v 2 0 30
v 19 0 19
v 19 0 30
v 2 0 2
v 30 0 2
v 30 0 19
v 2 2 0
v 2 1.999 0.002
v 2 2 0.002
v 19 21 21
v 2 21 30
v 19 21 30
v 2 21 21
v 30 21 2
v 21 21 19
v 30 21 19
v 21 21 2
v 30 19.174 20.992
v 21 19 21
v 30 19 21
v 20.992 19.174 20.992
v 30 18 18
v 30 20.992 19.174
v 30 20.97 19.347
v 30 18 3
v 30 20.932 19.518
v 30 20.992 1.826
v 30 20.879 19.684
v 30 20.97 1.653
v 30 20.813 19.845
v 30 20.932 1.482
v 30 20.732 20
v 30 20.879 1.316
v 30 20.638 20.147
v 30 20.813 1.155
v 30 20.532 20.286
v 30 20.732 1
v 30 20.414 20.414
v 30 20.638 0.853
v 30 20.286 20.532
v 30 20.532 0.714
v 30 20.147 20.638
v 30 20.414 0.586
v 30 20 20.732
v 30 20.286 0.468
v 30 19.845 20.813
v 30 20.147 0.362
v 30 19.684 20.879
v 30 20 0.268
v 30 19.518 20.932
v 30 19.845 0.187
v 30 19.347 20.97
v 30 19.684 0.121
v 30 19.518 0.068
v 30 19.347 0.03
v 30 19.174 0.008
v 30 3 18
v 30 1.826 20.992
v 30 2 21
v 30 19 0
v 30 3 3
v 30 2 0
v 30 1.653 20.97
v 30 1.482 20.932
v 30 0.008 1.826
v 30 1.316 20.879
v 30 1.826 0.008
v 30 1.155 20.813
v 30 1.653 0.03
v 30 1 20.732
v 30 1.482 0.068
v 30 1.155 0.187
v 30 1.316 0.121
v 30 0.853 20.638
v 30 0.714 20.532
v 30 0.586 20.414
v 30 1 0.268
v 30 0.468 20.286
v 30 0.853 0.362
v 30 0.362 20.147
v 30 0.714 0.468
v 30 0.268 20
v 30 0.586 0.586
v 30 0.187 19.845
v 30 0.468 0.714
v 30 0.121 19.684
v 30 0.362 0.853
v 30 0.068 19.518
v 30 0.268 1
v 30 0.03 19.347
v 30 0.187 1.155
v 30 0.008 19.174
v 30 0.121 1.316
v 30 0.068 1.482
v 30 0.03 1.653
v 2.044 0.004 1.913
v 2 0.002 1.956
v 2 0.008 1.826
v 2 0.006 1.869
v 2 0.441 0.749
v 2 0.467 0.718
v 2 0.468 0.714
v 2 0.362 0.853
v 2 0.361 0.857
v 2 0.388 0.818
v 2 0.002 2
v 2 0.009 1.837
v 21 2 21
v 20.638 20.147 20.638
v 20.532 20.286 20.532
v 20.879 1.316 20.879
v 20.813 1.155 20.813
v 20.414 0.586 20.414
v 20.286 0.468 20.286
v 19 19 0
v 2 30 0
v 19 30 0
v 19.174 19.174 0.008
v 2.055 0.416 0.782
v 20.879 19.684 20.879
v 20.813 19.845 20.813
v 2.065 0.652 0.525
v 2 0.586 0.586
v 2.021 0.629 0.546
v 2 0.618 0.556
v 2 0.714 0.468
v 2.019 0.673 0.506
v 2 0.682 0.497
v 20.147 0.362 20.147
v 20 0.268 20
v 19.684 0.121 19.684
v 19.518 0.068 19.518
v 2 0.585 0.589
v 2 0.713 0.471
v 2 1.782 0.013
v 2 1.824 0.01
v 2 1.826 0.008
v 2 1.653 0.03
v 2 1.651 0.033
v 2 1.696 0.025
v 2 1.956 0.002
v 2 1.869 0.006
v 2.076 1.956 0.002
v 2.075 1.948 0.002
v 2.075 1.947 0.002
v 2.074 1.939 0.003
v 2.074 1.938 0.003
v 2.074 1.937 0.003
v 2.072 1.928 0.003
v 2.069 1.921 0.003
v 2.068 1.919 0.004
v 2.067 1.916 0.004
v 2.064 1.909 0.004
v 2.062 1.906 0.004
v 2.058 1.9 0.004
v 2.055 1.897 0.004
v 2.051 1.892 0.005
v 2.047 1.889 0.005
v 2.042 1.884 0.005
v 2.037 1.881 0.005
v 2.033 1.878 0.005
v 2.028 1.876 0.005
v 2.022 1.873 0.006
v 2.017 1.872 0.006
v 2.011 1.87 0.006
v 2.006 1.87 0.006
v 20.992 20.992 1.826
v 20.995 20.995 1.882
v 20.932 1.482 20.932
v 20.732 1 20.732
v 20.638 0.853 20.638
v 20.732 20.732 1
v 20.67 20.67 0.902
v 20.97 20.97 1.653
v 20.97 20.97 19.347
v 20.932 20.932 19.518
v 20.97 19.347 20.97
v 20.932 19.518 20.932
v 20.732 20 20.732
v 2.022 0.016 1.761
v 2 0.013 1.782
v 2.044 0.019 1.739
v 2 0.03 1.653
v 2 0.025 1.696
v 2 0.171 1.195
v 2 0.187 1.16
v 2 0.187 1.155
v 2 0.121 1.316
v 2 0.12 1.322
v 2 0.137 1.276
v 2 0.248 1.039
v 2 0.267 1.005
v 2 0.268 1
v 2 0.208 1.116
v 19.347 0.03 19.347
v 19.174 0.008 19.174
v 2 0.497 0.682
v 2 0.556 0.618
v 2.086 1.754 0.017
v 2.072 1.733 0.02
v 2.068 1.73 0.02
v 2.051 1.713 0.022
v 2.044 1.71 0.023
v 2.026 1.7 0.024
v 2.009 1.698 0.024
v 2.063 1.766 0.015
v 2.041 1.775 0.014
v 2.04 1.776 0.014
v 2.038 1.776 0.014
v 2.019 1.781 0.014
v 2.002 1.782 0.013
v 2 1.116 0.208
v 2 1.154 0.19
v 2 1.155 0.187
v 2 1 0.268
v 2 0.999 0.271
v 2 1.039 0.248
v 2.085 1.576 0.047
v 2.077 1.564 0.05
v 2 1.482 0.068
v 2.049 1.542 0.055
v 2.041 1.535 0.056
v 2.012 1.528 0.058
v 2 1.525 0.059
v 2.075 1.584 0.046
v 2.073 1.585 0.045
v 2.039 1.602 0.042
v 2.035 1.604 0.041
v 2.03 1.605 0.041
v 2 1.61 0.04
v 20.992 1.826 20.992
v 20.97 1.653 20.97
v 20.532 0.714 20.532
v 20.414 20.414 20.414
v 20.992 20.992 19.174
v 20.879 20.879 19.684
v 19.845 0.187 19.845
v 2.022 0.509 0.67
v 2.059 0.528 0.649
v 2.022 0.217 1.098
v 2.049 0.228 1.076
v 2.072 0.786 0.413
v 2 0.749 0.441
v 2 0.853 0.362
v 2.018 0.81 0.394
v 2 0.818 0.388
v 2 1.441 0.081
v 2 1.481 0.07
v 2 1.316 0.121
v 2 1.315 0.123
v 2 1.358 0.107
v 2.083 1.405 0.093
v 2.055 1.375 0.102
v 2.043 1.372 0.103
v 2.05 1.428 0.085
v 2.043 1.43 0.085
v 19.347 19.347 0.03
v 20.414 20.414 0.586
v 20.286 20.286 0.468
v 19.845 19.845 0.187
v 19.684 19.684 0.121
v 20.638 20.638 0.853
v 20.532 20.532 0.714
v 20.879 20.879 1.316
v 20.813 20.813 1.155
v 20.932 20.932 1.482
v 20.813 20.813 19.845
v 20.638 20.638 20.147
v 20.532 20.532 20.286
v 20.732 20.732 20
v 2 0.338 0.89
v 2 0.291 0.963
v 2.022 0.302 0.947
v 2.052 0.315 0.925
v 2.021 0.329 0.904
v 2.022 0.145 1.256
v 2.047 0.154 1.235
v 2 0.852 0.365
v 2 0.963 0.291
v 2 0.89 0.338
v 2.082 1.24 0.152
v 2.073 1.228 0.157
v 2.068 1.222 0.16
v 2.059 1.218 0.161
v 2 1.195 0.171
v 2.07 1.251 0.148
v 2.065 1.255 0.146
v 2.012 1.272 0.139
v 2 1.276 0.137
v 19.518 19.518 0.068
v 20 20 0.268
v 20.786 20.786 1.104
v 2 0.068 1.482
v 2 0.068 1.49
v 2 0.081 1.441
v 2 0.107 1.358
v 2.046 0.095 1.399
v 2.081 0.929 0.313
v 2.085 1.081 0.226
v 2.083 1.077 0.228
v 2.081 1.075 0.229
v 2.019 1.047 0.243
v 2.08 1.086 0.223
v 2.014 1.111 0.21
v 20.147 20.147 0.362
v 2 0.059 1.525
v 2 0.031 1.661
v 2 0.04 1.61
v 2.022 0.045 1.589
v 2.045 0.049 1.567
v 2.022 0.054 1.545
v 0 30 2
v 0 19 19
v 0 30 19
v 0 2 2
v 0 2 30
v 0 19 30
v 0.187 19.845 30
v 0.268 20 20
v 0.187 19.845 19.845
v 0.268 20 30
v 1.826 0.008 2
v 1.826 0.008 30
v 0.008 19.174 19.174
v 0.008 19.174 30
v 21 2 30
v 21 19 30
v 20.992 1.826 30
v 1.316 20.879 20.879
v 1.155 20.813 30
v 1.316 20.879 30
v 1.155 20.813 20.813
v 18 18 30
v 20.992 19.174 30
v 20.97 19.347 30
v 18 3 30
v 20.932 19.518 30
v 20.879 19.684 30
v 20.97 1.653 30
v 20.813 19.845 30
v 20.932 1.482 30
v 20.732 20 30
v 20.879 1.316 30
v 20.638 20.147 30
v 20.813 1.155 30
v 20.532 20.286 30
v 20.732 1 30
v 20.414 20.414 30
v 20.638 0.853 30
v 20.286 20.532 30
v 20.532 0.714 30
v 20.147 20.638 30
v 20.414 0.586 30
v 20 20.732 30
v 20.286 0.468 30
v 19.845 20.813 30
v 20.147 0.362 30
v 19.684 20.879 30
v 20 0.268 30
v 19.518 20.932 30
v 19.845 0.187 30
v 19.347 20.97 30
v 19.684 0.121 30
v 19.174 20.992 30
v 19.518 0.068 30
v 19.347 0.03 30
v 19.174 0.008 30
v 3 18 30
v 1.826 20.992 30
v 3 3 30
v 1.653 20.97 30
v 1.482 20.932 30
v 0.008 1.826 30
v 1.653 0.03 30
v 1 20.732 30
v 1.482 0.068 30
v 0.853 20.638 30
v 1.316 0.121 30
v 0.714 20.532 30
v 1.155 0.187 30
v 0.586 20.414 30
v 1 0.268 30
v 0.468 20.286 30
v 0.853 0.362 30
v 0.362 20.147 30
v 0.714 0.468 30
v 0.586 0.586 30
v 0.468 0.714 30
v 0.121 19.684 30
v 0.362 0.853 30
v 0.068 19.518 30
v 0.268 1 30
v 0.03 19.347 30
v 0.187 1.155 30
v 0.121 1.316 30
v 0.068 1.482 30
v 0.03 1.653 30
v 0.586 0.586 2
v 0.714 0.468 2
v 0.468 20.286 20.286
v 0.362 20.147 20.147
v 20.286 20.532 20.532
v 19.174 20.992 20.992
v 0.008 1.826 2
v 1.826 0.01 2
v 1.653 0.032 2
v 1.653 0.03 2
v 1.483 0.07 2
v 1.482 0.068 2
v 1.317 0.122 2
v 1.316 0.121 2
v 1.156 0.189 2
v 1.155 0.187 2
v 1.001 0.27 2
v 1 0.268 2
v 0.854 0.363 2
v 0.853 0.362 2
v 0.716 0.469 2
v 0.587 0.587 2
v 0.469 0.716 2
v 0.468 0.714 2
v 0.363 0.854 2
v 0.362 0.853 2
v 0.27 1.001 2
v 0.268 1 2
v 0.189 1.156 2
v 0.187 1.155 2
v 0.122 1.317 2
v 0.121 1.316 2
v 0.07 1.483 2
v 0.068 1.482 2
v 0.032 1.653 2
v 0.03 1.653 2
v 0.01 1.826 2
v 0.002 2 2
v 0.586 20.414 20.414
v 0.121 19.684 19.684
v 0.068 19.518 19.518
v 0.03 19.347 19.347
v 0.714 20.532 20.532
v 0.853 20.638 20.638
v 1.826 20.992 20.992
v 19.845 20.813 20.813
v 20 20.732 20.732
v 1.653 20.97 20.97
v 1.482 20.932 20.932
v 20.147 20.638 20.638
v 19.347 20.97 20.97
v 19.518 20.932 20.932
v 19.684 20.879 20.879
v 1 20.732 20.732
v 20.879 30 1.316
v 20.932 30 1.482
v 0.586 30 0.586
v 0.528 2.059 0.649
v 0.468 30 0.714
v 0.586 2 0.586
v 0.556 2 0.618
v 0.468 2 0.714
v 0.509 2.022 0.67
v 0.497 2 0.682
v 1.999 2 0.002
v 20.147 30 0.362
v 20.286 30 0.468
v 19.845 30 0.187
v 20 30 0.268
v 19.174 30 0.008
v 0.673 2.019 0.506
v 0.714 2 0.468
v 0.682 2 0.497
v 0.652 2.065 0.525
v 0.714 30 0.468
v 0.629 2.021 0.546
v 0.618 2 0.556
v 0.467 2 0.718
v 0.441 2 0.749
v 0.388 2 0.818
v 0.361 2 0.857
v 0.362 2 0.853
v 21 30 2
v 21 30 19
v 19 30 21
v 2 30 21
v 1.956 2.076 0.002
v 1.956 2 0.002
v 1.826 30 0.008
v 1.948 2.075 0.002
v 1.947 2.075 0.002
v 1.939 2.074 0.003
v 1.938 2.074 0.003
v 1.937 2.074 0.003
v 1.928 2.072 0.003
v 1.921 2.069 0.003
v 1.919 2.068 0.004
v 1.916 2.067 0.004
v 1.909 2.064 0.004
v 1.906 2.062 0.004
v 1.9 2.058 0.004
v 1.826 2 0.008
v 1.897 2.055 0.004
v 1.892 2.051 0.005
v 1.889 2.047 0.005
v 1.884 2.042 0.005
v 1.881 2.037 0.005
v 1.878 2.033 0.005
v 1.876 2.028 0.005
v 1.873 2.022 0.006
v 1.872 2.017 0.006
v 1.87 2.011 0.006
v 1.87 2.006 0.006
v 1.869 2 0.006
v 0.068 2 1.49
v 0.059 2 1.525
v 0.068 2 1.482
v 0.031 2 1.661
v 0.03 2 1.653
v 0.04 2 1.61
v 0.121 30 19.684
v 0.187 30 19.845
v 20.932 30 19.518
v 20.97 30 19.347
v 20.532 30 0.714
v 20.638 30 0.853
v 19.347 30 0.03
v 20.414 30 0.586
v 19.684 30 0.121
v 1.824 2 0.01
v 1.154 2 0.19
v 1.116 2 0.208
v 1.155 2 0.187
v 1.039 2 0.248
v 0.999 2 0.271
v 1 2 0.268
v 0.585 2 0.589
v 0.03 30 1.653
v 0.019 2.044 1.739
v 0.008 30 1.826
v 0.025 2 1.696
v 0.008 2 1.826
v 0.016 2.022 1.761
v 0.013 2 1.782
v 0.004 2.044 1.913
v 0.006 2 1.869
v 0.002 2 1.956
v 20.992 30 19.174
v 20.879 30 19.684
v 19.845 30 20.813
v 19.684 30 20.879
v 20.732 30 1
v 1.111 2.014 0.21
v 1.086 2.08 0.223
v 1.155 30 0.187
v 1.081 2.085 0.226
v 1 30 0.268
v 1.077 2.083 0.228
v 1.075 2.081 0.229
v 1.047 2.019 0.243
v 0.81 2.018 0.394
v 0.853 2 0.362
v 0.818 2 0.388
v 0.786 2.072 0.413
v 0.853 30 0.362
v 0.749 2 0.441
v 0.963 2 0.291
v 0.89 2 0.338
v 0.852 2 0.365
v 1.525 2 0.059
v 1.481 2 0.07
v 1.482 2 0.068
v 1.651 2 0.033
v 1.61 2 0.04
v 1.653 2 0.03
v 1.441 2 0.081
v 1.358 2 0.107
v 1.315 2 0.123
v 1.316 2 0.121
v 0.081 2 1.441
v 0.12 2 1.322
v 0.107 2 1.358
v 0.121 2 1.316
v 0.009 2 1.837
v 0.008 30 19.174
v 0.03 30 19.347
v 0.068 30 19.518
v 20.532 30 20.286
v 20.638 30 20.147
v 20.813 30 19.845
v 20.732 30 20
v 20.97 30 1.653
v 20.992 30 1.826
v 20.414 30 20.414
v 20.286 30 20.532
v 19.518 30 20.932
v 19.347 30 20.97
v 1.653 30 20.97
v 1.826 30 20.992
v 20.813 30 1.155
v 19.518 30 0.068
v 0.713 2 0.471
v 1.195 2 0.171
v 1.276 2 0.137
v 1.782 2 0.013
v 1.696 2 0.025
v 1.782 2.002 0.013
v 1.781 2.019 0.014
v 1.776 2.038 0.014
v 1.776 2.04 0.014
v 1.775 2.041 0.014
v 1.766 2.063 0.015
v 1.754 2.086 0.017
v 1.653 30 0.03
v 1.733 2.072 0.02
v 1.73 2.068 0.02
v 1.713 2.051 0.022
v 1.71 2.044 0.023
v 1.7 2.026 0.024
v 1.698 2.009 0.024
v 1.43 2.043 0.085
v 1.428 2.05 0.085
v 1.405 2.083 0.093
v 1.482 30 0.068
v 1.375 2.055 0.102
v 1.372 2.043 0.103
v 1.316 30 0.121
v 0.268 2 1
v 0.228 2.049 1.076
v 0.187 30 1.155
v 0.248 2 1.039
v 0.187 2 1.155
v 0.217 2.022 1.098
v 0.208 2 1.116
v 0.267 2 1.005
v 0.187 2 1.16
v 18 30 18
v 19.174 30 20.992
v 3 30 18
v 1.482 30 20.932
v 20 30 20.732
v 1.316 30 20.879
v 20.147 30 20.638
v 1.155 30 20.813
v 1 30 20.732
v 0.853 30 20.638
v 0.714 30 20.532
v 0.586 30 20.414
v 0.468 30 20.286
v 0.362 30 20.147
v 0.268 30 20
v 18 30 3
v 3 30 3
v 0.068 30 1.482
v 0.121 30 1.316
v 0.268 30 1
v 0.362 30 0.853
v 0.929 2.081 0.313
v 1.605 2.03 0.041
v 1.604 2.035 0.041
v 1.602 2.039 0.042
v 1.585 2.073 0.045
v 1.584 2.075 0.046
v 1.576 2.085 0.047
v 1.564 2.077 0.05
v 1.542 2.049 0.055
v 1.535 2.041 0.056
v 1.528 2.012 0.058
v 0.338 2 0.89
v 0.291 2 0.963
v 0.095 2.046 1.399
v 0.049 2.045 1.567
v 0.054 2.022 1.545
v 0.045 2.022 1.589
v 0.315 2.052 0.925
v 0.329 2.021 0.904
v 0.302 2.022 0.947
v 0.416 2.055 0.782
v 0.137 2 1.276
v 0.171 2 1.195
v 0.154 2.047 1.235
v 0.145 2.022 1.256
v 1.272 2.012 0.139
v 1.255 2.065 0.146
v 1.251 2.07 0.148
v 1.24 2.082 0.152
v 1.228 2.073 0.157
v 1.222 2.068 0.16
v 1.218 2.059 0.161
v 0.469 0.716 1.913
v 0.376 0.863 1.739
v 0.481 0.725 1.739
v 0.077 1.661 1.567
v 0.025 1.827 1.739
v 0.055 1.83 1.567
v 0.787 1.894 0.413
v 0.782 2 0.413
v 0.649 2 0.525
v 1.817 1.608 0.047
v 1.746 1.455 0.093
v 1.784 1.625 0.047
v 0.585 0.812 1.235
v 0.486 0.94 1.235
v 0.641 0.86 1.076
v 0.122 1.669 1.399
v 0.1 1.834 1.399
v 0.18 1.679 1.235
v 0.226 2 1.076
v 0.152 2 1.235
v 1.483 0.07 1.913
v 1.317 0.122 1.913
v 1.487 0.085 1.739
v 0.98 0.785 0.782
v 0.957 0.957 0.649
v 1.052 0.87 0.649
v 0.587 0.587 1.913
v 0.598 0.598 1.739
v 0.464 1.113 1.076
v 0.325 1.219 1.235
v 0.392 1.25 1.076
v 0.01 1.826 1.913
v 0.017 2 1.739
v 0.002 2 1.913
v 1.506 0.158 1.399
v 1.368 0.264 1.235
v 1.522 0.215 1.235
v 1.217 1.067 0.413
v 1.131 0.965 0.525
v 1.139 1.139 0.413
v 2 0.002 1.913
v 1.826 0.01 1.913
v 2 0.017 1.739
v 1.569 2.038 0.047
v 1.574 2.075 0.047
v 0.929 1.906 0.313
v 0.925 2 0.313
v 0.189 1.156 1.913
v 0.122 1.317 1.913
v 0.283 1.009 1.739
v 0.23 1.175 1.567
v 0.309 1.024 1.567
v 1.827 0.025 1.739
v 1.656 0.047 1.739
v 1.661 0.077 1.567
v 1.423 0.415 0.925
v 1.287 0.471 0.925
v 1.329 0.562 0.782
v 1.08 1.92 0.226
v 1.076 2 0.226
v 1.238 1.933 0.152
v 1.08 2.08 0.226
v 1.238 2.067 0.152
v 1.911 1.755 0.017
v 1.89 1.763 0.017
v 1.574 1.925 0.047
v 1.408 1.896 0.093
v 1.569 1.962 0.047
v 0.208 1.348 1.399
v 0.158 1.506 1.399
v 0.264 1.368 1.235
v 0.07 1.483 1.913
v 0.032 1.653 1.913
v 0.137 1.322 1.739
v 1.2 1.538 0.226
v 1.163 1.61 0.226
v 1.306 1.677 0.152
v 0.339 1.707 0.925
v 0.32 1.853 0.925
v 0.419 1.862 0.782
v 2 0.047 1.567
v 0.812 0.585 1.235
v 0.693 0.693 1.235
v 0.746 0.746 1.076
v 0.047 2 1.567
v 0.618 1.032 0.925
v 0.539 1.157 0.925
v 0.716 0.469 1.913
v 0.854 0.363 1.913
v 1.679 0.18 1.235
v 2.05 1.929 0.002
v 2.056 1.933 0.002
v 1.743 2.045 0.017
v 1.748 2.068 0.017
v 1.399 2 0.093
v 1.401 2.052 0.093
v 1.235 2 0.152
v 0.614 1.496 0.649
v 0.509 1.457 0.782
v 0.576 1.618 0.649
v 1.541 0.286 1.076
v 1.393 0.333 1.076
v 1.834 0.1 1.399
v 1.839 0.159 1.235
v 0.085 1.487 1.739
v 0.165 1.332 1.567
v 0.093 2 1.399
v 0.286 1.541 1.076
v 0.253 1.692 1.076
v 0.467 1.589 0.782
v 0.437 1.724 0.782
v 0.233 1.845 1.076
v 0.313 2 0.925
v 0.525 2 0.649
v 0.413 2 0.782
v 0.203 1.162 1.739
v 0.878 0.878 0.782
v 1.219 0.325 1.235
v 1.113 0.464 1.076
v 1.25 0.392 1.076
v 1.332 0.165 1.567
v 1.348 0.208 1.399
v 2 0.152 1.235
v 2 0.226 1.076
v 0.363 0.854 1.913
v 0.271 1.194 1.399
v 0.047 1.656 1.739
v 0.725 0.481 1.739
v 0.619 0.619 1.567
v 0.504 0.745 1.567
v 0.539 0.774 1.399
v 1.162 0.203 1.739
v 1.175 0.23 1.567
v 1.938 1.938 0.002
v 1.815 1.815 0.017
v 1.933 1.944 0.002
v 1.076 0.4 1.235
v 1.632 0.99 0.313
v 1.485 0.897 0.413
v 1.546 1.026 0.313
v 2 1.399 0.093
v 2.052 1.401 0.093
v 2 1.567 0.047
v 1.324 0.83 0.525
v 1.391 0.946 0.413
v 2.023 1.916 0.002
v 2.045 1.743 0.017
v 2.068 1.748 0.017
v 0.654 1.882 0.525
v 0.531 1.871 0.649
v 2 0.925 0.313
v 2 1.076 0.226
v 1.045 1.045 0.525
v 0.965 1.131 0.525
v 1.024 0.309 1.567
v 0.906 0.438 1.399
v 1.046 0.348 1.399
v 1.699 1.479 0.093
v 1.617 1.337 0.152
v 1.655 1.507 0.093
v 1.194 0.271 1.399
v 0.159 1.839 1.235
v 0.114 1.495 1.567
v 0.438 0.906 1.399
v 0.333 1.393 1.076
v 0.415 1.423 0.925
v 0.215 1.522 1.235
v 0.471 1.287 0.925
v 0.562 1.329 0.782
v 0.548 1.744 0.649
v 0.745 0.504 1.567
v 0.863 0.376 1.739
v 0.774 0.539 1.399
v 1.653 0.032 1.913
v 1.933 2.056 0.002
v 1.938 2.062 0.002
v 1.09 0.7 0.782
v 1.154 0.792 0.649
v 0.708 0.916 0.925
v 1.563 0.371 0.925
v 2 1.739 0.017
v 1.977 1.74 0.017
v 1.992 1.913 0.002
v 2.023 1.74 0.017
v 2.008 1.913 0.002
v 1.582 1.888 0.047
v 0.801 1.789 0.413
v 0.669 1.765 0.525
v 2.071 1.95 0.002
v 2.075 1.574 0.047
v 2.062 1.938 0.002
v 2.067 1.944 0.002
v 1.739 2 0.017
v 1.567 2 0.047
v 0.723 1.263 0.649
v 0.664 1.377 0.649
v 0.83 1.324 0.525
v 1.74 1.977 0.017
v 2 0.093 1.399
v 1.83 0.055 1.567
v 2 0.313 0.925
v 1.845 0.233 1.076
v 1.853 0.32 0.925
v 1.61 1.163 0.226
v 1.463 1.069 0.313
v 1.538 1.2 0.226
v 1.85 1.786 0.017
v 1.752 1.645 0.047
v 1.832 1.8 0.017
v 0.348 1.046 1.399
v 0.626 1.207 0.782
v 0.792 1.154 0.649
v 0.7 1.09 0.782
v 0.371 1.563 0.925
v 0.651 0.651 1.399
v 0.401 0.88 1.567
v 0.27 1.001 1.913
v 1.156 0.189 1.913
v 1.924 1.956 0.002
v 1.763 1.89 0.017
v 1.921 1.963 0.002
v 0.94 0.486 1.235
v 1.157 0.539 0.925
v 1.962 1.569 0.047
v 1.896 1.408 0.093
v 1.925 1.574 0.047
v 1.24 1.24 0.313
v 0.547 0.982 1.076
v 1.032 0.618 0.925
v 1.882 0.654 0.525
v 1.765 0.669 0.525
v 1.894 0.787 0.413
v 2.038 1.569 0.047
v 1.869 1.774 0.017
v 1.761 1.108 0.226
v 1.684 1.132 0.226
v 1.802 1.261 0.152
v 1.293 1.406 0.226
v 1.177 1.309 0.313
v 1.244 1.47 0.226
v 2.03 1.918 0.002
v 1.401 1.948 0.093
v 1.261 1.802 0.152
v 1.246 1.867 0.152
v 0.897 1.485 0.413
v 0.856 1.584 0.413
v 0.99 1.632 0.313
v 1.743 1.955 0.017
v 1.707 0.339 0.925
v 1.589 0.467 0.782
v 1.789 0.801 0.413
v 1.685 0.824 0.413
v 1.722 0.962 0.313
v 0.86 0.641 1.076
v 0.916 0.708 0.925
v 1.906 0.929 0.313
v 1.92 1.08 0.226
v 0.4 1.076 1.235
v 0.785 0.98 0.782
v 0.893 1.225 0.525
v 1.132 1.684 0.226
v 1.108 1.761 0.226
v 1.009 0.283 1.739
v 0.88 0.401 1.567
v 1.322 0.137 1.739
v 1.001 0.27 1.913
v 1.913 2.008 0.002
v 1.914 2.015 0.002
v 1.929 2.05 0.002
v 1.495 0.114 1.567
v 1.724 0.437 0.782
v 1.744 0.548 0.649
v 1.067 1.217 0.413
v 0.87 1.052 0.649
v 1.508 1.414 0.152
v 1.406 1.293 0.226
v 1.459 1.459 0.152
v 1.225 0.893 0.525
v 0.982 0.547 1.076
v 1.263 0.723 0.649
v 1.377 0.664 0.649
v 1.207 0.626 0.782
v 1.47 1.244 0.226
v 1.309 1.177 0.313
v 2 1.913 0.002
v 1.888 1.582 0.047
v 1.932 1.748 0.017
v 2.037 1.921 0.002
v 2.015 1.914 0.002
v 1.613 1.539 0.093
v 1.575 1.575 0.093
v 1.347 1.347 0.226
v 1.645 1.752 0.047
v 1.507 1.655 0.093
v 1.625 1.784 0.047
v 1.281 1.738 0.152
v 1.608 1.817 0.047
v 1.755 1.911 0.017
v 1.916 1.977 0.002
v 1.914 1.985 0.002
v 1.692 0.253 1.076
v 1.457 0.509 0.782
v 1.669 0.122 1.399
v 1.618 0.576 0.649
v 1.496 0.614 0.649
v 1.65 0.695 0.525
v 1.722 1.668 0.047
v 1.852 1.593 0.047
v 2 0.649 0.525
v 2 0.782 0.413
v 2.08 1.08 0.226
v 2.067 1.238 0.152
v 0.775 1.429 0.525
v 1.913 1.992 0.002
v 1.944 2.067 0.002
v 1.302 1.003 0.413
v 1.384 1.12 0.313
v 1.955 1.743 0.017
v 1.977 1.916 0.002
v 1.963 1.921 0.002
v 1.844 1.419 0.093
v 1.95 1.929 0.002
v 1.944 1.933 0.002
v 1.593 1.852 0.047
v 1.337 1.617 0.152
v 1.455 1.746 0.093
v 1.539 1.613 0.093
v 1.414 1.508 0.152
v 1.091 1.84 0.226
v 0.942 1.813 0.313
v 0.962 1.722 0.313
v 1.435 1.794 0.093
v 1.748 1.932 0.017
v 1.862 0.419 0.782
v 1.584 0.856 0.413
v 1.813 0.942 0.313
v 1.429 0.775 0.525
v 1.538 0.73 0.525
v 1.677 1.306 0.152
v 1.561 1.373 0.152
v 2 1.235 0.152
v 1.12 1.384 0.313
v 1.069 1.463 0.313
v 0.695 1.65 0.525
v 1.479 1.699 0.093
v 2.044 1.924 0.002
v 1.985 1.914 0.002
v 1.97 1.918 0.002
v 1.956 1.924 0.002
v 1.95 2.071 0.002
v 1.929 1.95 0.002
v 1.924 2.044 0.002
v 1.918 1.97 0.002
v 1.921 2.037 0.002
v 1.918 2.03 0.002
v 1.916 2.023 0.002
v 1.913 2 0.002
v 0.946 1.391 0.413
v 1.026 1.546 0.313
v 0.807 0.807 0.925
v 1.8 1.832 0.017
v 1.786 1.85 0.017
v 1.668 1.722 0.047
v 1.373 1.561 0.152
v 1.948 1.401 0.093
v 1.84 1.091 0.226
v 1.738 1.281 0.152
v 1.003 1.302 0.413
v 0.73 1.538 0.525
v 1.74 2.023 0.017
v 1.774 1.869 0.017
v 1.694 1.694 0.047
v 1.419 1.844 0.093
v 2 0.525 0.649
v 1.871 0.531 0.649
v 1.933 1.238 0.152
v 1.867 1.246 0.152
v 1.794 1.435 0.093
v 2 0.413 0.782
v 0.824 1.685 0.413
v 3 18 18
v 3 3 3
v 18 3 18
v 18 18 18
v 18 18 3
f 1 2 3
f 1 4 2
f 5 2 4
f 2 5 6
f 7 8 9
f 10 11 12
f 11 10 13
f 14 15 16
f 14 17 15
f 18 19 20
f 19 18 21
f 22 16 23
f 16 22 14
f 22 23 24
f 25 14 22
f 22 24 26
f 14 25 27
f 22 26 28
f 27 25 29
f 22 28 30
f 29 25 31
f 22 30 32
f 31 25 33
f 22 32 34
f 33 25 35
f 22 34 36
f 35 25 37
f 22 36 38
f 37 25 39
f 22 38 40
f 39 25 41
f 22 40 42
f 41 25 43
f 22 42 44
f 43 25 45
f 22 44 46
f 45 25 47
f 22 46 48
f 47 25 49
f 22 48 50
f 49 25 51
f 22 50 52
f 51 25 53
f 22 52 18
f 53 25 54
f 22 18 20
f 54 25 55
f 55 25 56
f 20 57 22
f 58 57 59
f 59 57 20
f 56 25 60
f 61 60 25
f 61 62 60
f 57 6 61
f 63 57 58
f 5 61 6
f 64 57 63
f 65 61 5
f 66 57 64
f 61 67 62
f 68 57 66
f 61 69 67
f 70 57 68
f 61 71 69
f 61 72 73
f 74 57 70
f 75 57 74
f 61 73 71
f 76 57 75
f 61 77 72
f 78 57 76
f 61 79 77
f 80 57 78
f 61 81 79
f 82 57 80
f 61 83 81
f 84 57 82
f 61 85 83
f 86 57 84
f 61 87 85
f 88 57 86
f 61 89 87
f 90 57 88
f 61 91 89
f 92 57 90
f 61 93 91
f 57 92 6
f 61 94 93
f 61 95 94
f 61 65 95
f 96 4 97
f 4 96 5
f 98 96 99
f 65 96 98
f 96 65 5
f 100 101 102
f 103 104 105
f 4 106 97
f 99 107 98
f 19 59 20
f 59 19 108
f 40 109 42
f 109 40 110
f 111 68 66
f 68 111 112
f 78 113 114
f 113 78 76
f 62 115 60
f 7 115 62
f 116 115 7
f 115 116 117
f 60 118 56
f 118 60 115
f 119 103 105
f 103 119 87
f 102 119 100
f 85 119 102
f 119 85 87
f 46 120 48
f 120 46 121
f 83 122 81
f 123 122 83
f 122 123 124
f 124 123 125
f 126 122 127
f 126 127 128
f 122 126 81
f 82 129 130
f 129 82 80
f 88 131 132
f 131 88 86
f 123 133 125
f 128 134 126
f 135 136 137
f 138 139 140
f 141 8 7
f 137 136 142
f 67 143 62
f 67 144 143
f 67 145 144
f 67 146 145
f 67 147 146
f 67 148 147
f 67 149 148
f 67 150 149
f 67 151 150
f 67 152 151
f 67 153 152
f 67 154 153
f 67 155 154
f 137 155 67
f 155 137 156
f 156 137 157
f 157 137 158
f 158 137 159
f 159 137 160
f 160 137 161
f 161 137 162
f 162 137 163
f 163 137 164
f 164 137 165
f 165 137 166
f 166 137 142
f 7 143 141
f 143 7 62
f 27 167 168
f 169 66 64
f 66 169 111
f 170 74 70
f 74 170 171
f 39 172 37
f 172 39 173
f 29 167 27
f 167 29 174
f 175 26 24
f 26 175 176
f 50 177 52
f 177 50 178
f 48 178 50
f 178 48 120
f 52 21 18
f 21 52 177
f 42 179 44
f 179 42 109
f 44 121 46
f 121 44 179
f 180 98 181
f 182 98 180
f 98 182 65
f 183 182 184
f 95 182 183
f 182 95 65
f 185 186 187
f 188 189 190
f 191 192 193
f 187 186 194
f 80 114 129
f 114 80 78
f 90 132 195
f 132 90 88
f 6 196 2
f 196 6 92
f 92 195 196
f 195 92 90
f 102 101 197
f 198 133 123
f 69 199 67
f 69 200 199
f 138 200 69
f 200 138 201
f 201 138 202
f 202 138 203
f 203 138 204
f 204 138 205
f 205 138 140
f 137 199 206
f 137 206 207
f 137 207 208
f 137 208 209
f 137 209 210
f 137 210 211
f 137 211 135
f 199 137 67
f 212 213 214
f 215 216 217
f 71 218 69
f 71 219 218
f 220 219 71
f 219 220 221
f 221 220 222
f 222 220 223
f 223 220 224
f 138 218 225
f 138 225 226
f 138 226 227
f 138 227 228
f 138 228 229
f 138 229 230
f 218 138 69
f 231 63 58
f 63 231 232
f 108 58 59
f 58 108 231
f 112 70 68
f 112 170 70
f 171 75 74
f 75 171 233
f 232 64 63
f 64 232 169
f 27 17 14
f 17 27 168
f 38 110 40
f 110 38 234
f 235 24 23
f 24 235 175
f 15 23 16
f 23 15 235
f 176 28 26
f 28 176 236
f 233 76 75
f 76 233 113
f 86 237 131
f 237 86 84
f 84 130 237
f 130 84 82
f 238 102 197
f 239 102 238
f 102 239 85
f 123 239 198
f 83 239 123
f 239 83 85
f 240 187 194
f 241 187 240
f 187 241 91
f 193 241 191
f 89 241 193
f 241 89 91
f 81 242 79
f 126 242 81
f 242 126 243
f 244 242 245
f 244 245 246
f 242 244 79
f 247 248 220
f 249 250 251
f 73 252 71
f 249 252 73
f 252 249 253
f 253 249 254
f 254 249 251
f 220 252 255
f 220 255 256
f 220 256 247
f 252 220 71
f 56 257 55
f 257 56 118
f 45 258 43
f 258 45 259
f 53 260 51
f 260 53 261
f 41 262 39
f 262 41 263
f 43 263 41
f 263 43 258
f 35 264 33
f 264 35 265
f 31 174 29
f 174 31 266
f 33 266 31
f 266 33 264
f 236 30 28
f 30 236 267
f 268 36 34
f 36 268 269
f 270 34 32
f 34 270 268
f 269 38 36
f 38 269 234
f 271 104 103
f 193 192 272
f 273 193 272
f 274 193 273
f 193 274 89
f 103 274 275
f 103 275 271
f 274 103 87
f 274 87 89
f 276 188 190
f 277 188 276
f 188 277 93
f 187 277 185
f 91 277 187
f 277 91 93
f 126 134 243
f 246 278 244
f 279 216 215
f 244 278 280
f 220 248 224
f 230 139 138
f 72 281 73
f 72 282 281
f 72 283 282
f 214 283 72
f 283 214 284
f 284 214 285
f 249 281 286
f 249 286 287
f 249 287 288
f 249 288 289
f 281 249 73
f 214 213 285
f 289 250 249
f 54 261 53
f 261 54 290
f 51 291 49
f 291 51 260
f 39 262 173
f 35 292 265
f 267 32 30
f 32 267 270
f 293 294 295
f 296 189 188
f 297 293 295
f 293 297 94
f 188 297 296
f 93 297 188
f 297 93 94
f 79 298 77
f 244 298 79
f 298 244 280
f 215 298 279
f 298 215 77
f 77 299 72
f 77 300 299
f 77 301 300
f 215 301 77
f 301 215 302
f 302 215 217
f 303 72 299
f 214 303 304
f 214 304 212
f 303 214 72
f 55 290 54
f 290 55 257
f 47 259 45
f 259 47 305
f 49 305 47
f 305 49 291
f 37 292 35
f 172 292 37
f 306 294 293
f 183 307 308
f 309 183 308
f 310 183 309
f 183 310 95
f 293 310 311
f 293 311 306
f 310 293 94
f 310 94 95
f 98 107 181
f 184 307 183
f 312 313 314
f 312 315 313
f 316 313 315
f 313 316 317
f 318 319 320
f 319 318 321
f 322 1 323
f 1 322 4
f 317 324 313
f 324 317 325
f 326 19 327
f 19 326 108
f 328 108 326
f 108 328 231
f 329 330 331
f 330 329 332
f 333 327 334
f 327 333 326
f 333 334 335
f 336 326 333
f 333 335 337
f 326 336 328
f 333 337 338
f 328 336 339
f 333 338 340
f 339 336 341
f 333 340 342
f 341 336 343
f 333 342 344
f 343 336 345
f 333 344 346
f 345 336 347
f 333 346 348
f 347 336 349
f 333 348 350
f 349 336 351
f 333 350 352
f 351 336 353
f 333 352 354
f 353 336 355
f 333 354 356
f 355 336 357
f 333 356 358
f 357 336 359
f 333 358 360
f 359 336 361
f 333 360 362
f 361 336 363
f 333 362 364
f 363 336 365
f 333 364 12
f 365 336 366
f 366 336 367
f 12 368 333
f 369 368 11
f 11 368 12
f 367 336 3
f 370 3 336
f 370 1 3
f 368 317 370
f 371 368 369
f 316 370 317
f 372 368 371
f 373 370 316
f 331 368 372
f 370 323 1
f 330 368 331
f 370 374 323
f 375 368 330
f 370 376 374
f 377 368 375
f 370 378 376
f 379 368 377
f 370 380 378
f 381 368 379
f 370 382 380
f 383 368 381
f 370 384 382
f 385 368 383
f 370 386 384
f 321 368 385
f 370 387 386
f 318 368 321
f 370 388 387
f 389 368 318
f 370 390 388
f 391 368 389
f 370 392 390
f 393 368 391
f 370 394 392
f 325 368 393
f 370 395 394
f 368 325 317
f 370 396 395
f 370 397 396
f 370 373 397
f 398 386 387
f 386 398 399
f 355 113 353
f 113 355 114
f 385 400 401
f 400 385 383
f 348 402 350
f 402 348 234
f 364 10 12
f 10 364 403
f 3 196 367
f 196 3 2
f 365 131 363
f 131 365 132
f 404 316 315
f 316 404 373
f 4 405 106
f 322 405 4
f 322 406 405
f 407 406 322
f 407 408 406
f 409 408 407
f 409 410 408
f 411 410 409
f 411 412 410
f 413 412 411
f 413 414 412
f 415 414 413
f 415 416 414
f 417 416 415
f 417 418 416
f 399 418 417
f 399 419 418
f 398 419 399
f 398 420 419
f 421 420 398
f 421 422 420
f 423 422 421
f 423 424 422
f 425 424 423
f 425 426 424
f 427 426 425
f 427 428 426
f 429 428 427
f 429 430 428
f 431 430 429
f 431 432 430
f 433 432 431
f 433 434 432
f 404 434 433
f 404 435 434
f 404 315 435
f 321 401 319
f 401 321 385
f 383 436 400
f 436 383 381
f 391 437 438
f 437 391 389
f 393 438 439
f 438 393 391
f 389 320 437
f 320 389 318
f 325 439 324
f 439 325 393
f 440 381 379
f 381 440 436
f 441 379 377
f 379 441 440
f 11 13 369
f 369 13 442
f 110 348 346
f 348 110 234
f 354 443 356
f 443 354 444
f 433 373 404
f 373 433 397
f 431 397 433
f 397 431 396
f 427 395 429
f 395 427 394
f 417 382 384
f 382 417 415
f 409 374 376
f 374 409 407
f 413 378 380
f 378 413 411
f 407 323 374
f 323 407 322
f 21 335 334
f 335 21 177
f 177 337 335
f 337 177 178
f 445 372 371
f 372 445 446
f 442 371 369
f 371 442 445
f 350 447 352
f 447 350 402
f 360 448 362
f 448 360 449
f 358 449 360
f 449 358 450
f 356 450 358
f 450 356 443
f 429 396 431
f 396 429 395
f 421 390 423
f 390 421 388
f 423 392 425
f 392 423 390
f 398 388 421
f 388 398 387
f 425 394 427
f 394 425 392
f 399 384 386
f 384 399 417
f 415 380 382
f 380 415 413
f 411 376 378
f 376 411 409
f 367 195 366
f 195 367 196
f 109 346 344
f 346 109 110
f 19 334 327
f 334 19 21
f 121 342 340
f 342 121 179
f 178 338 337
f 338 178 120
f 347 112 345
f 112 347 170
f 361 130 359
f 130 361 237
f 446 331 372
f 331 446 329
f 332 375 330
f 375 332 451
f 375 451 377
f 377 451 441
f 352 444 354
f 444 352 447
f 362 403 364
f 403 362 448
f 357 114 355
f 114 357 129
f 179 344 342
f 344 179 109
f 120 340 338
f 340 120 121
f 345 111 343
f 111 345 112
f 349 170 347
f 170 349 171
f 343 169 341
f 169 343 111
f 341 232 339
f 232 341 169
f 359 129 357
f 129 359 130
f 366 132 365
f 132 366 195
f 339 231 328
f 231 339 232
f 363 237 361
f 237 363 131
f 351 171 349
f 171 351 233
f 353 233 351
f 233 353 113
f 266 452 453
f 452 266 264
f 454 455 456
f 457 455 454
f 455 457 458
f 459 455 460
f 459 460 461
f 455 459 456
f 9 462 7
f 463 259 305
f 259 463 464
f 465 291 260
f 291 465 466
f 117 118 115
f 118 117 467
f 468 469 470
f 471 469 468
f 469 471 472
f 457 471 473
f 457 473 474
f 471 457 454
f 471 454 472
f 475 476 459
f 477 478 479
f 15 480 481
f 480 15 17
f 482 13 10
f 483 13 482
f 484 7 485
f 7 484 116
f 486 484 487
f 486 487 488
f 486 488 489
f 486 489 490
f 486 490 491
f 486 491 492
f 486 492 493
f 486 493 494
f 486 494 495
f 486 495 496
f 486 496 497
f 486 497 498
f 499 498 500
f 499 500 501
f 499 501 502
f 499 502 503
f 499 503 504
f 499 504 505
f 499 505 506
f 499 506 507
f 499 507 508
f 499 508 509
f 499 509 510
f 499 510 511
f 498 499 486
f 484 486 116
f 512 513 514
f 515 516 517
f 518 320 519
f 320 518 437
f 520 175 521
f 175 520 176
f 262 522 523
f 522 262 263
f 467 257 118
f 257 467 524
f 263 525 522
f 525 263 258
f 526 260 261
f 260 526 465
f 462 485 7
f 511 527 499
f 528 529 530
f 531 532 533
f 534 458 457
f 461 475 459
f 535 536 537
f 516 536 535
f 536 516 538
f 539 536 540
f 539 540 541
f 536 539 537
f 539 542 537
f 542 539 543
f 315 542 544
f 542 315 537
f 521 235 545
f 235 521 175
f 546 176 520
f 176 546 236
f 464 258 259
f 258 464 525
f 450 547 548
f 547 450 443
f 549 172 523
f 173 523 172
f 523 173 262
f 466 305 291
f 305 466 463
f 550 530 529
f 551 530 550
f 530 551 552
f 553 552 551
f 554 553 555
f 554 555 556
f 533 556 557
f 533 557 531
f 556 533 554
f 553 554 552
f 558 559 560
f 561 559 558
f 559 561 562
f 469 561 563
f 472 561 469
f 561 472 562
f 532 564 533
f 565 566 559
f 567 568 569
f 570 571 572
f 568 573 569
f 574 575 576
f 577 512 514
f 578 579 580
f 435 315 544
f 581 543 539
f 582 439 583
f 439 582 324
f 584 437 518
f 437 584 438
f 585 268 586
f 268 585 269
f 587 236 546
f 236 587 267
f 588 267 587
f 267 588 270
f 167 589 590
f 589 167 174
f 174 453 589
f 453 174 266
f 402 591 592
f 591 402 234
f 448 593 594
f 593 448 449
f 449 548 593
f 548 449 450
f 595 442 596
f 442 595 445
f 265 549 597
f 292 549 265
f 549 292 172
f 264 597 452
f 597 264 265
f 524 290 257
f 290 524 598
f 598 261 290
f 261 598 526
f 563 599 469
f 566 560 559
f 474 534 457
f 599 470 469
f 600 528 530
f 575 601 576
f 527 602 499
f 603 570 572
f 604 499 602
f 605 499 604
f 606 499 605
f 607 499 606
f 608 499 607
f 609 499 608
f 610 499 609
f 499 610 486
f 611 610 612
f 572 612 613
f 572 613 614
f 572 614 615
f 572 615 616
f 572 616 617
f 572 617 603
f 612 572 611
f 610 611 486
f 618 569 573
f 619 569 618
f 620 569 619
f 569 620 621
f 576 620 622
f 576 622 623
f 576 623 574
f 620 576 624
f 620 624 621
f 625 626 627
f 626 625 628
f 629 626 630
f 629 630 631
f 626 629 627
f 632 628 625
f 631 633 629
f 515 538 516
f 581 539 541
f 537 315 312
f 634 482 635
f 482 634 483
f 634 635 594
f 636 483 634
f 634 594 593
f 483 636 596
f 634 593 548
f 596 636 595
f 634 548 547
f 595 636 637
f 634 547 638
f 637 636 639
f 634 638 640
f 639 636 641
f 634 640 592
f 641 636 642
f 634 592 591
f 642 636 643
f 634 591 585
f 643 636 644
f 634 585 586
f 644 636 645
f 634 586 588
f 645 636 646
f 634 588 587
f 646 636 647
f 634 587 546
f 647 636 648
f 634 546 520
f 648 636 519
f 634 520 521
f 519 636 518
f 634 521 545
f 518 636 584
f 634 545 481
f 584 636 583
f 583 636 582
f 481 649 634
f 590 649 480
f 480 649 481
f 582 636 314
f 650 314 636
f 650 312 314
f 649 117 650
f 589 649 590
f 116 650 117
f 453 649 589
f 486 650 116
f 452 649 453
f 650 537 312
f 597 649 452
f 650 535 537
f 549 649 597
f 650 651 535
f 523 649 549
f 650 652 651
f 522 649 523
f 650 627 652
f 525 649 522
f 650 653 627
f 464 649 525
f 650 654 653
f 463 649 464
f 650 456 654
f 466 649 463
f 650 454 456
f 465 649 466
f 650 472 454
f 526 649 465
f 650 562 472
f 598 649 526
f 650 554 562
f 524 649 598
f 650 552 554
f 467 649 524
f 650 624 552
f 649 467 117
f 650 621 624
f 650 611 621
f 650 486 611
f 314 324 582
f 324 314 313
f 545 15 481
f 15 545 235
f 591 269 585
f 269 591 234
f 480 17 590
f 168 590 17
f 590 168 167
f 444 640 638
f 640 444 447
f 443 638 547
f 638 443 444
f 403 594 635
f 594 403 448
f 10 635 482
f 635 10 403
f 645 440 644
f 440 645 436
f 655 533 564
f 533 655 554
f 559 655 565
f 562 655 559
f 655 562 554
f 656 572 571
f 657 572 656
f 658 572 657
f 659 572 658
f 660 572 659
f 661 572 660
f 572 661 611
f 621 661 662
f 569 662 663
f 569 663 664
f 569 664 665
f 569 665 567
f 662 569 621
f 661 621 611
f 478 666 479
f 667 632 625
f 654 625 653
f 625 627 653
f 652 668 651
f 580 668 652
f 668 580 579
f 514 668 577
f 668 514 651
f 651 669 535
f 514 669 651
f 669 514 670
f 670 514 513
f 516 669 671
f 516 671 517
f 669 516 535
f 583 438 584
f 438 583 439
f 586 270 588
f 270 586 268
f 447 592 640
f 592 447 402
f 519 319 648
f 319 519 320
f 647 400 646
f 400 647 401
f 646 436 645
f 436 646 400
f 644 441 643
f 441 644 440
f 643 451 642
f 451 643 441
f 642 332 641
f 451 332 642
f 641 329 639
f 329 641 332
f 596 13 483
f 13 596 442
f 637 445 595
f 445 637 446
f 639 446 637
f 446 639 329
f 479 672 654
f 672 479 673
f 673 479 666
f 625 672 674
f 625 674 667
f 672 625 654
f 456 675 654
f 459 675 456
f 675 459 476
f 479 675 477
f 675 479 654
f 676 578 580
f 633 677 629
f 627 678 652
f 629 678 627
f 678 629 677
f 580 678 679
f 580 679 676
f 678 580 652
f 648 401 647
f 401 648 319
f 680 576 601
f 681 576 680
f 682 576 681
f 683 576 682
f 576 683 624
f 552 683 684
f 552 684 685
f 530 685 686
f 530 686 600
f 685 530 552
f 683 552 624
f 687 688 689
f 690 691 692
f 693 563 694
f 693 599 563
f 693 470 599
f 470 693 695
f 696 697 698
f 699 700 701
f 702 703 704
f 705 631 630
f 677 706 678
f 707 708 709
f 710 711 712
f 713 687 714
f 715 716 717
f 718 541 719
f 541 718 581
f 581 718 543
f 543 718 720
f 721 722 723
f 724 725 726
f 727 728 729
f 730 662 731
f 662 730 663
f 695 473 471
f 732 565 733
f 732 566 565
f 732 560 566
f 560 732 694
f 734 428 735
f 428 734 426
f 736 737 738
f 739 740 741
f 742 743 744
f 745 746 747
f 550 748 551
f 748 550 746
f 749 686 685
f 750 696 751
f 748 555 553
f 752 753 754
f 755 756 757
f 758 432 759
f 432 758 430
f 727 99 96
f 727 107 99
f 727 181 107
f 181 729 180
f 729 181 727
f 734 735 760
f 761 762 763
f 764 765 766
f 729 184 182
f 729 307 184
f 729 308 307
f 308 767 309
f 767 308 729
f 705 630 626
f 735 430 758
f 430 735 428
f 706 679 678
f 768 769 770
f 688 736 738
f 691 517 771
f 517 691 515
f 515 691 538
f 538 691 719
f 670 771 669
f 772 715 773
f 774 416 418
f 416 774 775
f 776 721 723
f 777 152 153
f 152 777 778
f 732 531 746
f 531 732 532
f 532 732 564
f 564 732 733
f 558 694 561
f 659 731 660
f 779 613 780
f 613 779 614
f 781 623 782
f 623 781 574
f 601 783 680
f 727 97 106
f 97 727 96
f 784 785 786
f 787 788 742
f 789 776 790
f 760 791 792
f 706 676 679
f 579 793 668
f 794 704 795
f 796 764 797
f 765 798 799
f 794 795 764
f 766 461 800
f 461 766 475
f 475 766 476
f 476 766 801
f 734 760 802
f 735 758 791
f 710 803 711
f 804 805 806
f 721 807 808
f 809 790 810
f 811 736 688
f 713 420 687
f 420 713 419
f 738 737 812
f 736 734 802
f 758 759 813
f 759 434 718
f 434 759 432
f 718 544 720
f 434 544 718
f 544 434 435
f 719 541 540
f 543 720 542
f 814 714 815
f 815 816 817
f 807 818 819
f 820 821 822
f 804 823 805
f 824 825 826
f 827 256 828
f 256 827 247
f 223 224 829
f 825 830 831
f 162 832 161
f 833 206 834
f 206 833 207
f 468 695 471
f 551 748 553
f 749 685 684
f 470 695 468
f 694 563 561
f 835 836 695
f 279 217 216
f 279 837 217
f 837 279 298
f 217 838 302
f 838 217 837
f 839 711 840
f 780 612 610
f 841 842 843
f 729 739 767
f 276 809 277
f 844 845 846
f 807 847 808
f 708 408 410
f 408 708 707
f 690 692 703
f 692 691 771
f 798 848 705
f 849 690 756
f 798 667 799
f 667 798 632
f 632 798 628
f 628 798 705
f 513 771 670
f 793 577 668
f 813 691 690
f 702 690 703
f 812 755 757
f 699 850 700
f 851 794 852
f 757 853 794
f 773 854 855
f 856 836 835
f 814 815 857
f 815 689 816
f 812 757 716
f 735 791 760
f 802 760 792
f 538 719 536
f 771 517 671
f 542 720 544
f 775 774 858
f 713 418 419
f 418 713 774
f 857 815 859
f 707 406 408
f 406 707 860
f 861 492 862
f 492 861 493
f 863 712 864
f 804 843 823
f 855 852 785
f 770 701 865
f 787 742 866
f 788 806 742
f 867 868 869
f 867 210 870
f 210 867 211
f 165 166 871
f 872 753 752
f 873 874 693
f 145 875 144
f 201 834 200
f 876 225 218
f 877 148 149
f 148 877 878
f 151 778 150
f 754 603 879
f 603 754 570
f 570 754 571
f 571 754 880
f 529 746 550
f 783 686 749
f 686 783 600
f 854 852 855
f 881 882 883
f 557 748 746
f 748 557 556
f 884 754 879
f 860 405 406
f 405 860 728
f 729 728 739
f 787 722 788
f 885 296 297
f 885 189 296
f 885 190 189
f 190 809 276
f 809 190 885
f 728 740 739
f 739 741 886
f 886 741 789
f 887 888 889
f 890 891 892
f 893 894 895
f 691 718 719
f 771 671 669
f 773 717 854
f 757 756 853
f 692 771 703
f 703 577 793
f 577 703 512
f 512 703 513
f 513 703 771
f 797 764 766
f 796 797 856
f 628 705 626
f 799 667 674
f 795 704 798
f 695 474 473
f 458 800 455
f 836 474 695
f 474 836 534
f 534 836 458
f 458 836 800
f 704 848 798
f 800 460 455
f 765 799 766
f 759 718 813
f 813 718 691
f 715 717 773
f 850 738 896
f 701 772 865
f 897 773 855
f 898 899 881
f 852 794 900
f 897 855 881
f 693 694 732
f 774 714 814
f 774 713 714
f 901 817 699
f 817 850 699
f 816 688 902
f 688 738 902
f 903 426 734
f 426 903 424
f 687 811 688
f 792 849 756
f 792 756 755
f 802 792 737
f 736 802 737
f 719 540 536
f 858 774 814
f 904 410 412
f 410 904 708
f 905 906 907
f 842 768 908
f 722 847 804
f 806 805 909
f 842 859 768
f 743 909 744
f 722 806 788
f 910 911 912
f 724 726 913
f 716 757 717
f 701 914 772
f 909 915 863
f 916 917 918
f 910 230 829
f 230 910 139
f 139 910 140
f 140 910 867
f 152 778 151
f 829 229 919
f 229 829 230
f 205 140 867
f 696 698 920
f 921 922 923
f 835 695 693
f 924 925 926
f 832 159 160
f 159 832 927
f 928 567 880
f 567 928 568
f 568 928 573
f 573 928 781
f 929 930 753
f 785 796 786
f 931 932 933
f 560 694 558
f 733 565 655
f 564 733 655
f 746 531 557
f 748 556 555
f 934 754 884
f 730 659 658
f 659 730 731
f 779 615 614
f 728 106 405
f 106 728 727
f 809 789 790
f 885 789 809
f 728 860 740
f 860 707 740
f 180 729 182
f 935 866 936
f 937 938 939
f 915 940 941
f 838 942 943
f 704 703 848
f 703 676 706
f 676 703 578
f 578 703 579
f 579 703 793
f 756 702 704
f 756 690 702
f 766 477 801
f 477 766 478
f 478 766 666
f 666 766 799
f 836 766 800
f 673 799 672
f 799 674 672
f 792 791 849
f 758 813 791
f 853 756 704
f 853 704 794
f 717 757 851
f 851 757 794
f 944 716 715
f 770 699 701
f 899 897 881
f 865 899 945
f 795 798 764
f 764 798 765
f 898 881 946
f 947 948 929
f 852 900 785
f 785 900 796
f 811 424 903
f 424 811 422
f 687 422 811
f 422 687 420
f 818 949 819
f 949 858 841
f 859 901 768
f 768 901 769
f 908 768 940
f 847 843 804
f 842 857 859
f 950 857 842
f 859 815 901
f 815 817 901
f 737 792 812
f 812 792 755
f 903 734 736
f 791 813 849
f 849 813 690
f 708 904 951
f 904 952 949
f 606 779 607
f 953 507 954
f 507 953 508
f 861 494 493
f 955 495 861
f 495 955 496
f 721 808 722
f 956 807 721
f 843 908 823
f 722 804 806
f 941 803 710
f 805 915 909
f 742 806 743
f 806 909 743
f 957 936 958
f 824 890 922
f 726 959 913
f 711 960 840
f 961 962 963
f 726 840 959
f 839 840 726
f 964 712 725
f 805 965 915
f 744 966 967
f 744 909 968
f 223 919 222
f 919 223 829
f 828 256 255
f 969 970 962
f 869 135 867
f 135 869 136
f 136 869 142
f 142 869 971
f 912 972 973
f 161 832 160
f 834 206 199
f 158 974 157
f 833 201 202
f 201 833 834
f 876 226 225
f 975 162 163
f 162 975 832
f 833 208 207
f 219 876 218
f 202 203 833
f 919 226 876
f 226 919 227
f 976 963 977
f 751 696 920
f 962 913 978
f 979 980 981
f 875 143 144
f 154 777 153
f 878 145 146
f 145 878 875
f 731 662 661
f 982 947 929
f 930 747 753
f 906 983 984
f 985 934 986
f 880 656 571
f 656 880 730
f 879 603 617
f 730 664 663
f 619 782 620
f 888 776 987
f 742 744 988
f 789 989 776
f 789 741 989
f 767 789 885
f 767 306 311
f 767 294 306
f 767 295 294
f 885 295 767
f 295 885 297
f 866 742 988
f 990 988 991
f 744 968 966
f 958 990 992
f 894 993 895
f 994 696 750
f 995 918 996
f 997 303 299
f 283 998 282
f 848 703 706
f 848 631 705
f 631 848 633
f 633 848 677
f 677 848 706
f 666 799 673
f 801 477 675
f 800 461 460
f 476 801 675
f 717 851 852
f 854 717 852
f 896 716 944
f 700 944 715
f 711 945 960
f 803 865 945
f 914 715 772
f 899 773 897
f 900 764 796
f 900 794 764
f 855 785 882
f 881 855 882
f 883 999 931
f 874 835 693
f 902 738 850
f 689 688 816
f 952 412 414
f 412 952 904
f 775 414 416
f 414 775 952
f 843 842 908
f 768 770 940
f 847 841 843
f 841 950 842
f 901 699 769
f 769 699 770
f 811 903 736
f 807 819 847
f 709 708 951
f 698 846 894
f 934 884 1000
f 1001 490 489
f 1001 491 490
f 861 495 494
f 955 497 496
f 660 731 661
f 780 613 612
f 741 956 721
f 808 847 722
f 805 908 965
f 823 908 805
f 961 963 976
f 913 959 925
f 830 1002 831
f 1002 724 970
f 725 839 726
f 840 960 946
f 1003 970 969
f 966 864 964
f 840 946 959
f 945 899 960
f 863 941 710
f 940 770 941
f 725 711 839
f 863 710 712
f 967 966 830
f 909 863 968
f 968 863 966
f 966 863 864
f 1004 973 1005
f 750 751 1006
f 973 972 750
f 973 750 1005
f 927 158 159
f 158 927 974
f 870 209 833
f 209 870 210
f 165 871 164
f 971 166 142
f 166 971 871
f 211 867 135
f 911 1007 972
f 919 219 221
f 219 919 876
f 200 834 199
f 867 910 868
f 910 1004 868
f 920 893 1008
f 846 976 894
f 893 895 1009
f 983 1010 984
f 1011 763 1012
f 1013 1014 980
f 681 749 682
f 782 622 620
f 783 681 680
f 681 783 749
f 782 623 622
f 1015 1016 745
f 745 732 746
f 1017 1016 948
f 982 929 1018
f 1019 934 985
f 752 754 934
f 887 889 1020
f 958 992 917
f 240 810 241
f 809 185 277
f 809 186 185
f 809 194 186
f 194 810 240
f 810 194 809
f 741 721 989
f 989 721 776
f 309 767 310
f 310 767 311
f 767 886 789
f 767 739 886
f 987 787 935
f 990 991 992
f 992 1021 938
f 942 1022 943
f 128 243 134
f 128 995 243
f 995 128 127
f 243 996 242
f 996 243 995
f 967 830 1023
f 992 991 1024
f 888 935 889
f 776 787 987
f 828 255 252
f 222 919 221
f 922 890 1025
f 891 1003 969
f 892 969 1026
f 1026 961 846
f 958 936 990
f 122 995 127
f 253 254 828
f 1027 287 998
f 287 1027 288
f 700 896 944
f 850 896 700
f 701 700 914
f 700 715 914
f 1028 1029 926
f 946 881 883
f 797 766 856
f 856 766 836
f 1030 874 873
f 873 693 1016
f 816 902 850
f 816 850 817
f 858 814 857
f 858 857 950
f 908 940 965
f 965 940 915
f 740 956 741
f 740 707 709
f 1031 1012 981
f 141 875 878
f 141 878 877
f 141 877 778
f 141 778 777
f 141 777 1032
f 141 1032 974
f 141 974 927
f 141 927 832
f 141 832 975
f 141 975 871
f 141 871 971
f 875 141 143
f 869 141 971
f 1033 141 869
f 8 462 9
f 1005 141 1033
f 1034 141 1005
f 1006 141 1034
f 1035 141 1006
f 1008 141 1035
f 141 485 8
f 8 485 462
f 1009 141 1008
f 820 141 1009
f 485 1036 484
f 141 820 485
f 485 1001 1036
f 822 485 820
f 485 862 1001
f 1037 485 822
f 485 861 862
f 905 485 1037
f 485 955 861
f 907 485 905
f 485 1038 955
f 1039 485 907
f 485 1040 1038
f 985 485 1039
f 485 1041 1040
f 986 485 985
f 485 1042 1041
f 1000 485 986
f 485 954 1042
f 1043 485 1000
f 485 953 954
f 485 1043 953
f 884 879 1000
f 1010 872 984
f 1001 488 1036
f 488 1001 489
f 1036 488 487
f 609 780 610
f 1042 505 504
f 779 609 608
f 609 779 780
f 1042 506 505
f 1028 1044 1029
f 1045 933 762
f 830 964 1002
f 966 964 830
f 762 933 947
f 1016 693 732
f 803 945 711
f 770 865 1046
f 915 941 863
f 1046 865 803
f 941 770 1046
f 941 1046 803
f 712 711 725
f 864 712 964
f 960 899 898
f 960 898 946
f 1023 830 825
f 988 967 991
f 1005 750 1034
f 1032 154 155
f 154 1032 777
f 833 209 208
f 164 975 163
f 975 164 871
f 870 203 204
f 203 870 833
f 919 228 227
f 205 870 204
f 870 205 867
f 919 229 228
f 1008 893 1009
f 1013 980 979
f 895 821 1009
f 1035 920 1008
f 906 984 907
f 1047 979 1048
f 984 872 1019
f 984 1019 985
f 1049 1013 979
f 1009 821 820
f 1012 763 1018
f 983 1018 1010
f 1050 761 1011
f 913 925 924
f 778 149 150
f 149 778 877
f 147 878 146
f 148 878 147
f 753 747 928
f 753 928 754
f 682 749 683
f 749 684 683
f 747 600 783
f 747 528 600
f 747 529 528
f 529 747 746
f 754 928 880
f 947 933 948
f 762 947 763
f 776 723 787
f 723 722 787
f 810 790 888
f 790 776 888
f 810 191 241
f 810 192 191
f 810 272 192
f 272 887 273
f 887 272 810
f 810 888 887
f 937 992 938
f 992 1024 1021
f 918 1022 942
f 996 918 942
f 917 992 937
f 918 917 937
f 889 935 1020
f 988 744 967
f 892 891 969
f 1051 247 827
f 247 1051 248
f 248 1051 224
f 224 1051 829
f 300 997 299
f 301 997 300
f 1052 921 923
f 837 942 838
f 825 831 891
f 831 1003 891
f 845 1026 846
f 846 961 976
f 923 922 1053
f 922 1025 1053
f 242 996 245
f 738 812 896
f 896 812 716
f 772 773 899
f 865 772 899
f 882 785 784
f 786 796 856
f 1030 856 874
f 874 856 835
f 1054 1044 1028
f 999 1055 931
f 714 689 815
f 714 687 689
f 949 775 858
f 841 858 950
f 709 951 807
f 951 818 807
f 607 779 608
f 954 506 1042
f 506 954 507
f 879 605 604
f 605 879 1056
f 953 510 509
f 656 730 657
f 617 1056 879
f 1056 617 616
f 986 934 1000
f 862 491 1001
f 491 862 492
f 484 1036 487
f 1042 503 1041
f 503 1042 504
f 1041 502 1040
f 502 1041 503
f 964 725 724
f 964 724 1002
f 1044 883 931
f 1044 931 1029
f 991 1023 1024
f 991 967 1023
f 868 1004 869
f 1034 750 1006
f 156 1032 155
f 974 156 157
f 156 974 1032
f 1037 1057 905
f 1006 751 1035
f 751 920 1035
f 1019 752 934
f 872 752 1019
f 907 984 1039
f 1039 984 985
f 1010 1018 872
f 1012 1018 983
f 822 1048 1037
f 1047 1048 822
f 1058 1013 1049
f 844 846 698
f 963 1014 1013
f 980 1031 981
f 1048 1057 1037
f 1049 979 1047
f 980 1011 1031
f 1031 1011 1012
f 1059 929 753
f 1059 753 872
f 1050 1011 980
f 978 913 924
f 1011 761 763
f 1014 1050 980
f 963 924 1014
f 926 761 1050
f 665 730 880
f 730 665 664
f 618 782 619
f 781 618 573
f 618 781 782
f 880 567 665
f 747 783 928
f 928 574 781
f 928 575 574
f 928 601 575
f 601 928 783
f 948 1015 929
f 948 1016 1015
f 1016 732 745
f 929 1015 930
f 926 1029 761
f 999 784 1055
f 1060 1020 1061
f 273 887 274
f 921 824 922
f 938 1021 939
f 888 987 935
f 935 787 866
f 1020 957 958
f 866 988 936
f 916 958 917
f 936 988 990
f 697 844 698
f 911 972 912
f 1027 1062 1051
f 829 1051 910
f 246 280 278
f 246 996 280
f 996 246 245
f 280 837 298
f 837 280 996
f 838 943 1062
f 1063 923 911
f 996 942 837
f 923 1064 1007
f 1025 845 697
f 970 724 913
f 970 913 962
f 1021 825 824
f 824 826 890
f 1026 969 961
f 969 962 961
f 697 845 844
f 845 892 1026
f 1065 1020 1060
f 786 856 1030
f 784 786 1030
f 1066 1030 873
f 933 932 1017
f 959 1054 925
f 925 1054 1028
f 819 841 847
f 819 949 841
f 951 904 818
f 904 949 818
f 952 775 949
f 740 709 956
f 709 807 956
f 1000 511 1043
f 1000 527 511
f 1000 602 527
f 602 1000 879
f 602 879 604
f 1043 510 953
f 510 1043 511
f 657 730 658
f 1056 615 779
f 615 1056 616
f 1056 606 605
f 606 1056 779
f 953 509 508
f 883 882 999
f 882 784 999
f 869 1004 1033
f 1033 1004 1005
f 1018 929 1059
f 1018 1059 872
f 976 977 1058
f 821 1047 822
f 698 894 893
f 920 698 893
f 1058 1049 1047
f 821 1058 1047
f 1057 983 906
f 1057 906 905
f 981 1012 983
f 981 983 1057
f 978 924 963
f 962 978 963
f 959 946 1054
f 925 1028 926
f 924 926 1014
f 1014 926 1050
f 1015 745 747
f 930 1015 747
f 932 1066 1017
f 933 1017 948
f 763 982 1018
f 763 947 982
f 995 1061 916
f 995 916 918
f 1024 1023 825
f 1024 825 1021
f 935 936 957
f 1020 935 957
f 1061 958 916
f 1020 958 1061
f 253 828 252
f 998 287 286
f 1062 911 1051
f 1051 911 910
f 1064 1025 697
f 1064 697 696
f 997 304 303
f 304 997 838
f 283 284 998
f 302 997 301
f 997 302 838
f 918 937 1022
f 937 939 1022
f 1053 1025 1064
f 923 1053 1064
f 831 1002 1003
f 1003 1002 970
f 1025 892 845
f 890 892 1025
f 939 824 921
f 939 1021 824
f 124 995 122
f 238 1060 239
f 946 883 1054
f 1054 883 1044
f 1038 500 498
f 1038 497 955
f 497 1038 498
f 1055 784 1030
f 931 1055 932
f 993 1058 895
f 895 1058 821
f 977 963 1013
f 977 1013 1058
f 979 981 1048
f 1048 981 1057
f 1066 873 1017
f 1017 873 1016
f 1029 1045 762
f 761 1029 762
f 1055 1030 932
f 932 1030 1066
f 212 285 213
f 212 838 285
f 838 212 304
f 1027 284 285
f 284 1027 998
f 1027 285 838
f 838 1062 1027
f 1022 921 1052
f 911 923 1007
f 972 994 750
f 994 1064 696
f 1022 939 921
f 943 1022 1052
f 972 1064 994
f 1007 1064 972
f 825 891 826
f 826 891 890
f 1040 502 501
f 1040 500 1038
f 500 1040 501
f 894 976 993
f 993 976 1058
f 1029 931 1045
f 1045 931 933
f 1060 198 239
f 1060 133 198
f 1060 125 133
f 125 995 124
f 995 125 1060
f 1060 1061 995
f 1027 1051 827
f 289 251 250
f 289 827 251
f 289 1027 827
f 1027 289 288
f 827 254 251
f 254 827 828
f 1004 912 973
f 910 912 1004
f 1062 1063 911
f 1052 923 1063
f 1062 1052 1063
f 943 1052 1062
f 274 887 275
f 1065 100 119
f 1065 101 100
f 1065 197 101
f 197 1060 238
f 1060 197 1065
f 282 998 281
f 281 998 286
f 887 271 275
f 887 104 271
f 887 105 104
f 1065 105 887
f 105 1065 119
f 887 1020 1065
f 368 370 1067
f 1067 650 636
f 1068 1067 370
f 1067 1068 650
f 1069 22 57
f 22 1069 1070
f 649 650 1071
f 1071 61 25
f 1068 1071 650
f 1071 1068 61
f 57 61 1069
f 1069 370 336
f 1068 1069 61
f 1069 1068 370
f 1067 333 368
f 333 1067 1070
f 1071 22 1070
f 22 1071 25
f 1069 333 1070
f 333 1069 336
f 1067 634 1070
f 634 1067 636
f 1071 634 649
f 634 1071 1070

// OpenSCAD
$fa=5; $fs=0.1;

wall=3; // толщина стенки
rout=2; // радиус скругления внешней оболочки
prof=15; // грань квадратного профиля
lmult=2; // длина уголка = lmult*prof
    
difference()
{
    union() //внешнее
    {    

        hull() //x
        {
            translate([rout, rout, rout]) rotate([0,90,0]) cylinder(h=lmult*prof-rout, r=rout);
            translate([rout, prof+2*wall-rout, rout]) rotate([0,90,0]) cylinder(h=lmult*prof-rout, r=rout);
            translate([rout, rout, prof+2*wall-rout]) rotate([0,90,0]) cylinder(h=lmult*prof-rout, r=rout);
            translate([rout, prof+2*wall-rout, prof+2*wall-rout]) rotate([0,90,0]) cylinder(h=lmult*prof-rout, r=rout);
        }
        
        hull() //z
        {
            translate([rout, rout, rout]) cylinder(h=lmult*prof-rout, r=rout);
            translate([prof+2*wall-rout, rout, rout]) cylinder(h=lmult*prof-rout, r=rout);
            translate([rout, prof+2*wall-rout, rout]) cylinder(h=lmult*prof-rout, r=rout);
            translate([prof+2*wall-rout, prof+2*wall-rout, rout]) cylinder(h=lmult*prof-rout, r=rout);
            
        }
        
        hull() //y
        {
            translate([rout, rout, rout]) rotate([-90,0,0]) cylinder(h=lmult*prof-rout, r=rout);
            translate([prof+2*wall-rout, rout, rout]) rotate([-90,0,0]) cylinder(h=lmult*prof-rout, r=rout);
            translate([rout, rout, prof+2*wall-rout]) rotate([-90,0,0]) cylinder(h=lmult*prof-rout, r=rout);
            translate([prof+2*wall-rout, rout, prof+2*wall-rout]) rotate([-90,0,0]) cylinder(h=lmult*prof-rout, r=rout);
            
        }
        
        translate([rout, rout, rout]) sphere(r=rout); // уголок
        
     
    }
    
    union() //внутреннее
    {
        translate([wall, wall, wall]) cube([lmult*prof-wall+0.01, prof, prof]);
        translate([wall, wall, prof+wall-0.01]) cube([prof, prof, (lmult-1)*prof-wall+0.02]);
        translate([wall, prof+wall-0.01, wall]) cube([prof, (lmult-1)*prof-wall+0.02, prof]);
    }
    
    
}
